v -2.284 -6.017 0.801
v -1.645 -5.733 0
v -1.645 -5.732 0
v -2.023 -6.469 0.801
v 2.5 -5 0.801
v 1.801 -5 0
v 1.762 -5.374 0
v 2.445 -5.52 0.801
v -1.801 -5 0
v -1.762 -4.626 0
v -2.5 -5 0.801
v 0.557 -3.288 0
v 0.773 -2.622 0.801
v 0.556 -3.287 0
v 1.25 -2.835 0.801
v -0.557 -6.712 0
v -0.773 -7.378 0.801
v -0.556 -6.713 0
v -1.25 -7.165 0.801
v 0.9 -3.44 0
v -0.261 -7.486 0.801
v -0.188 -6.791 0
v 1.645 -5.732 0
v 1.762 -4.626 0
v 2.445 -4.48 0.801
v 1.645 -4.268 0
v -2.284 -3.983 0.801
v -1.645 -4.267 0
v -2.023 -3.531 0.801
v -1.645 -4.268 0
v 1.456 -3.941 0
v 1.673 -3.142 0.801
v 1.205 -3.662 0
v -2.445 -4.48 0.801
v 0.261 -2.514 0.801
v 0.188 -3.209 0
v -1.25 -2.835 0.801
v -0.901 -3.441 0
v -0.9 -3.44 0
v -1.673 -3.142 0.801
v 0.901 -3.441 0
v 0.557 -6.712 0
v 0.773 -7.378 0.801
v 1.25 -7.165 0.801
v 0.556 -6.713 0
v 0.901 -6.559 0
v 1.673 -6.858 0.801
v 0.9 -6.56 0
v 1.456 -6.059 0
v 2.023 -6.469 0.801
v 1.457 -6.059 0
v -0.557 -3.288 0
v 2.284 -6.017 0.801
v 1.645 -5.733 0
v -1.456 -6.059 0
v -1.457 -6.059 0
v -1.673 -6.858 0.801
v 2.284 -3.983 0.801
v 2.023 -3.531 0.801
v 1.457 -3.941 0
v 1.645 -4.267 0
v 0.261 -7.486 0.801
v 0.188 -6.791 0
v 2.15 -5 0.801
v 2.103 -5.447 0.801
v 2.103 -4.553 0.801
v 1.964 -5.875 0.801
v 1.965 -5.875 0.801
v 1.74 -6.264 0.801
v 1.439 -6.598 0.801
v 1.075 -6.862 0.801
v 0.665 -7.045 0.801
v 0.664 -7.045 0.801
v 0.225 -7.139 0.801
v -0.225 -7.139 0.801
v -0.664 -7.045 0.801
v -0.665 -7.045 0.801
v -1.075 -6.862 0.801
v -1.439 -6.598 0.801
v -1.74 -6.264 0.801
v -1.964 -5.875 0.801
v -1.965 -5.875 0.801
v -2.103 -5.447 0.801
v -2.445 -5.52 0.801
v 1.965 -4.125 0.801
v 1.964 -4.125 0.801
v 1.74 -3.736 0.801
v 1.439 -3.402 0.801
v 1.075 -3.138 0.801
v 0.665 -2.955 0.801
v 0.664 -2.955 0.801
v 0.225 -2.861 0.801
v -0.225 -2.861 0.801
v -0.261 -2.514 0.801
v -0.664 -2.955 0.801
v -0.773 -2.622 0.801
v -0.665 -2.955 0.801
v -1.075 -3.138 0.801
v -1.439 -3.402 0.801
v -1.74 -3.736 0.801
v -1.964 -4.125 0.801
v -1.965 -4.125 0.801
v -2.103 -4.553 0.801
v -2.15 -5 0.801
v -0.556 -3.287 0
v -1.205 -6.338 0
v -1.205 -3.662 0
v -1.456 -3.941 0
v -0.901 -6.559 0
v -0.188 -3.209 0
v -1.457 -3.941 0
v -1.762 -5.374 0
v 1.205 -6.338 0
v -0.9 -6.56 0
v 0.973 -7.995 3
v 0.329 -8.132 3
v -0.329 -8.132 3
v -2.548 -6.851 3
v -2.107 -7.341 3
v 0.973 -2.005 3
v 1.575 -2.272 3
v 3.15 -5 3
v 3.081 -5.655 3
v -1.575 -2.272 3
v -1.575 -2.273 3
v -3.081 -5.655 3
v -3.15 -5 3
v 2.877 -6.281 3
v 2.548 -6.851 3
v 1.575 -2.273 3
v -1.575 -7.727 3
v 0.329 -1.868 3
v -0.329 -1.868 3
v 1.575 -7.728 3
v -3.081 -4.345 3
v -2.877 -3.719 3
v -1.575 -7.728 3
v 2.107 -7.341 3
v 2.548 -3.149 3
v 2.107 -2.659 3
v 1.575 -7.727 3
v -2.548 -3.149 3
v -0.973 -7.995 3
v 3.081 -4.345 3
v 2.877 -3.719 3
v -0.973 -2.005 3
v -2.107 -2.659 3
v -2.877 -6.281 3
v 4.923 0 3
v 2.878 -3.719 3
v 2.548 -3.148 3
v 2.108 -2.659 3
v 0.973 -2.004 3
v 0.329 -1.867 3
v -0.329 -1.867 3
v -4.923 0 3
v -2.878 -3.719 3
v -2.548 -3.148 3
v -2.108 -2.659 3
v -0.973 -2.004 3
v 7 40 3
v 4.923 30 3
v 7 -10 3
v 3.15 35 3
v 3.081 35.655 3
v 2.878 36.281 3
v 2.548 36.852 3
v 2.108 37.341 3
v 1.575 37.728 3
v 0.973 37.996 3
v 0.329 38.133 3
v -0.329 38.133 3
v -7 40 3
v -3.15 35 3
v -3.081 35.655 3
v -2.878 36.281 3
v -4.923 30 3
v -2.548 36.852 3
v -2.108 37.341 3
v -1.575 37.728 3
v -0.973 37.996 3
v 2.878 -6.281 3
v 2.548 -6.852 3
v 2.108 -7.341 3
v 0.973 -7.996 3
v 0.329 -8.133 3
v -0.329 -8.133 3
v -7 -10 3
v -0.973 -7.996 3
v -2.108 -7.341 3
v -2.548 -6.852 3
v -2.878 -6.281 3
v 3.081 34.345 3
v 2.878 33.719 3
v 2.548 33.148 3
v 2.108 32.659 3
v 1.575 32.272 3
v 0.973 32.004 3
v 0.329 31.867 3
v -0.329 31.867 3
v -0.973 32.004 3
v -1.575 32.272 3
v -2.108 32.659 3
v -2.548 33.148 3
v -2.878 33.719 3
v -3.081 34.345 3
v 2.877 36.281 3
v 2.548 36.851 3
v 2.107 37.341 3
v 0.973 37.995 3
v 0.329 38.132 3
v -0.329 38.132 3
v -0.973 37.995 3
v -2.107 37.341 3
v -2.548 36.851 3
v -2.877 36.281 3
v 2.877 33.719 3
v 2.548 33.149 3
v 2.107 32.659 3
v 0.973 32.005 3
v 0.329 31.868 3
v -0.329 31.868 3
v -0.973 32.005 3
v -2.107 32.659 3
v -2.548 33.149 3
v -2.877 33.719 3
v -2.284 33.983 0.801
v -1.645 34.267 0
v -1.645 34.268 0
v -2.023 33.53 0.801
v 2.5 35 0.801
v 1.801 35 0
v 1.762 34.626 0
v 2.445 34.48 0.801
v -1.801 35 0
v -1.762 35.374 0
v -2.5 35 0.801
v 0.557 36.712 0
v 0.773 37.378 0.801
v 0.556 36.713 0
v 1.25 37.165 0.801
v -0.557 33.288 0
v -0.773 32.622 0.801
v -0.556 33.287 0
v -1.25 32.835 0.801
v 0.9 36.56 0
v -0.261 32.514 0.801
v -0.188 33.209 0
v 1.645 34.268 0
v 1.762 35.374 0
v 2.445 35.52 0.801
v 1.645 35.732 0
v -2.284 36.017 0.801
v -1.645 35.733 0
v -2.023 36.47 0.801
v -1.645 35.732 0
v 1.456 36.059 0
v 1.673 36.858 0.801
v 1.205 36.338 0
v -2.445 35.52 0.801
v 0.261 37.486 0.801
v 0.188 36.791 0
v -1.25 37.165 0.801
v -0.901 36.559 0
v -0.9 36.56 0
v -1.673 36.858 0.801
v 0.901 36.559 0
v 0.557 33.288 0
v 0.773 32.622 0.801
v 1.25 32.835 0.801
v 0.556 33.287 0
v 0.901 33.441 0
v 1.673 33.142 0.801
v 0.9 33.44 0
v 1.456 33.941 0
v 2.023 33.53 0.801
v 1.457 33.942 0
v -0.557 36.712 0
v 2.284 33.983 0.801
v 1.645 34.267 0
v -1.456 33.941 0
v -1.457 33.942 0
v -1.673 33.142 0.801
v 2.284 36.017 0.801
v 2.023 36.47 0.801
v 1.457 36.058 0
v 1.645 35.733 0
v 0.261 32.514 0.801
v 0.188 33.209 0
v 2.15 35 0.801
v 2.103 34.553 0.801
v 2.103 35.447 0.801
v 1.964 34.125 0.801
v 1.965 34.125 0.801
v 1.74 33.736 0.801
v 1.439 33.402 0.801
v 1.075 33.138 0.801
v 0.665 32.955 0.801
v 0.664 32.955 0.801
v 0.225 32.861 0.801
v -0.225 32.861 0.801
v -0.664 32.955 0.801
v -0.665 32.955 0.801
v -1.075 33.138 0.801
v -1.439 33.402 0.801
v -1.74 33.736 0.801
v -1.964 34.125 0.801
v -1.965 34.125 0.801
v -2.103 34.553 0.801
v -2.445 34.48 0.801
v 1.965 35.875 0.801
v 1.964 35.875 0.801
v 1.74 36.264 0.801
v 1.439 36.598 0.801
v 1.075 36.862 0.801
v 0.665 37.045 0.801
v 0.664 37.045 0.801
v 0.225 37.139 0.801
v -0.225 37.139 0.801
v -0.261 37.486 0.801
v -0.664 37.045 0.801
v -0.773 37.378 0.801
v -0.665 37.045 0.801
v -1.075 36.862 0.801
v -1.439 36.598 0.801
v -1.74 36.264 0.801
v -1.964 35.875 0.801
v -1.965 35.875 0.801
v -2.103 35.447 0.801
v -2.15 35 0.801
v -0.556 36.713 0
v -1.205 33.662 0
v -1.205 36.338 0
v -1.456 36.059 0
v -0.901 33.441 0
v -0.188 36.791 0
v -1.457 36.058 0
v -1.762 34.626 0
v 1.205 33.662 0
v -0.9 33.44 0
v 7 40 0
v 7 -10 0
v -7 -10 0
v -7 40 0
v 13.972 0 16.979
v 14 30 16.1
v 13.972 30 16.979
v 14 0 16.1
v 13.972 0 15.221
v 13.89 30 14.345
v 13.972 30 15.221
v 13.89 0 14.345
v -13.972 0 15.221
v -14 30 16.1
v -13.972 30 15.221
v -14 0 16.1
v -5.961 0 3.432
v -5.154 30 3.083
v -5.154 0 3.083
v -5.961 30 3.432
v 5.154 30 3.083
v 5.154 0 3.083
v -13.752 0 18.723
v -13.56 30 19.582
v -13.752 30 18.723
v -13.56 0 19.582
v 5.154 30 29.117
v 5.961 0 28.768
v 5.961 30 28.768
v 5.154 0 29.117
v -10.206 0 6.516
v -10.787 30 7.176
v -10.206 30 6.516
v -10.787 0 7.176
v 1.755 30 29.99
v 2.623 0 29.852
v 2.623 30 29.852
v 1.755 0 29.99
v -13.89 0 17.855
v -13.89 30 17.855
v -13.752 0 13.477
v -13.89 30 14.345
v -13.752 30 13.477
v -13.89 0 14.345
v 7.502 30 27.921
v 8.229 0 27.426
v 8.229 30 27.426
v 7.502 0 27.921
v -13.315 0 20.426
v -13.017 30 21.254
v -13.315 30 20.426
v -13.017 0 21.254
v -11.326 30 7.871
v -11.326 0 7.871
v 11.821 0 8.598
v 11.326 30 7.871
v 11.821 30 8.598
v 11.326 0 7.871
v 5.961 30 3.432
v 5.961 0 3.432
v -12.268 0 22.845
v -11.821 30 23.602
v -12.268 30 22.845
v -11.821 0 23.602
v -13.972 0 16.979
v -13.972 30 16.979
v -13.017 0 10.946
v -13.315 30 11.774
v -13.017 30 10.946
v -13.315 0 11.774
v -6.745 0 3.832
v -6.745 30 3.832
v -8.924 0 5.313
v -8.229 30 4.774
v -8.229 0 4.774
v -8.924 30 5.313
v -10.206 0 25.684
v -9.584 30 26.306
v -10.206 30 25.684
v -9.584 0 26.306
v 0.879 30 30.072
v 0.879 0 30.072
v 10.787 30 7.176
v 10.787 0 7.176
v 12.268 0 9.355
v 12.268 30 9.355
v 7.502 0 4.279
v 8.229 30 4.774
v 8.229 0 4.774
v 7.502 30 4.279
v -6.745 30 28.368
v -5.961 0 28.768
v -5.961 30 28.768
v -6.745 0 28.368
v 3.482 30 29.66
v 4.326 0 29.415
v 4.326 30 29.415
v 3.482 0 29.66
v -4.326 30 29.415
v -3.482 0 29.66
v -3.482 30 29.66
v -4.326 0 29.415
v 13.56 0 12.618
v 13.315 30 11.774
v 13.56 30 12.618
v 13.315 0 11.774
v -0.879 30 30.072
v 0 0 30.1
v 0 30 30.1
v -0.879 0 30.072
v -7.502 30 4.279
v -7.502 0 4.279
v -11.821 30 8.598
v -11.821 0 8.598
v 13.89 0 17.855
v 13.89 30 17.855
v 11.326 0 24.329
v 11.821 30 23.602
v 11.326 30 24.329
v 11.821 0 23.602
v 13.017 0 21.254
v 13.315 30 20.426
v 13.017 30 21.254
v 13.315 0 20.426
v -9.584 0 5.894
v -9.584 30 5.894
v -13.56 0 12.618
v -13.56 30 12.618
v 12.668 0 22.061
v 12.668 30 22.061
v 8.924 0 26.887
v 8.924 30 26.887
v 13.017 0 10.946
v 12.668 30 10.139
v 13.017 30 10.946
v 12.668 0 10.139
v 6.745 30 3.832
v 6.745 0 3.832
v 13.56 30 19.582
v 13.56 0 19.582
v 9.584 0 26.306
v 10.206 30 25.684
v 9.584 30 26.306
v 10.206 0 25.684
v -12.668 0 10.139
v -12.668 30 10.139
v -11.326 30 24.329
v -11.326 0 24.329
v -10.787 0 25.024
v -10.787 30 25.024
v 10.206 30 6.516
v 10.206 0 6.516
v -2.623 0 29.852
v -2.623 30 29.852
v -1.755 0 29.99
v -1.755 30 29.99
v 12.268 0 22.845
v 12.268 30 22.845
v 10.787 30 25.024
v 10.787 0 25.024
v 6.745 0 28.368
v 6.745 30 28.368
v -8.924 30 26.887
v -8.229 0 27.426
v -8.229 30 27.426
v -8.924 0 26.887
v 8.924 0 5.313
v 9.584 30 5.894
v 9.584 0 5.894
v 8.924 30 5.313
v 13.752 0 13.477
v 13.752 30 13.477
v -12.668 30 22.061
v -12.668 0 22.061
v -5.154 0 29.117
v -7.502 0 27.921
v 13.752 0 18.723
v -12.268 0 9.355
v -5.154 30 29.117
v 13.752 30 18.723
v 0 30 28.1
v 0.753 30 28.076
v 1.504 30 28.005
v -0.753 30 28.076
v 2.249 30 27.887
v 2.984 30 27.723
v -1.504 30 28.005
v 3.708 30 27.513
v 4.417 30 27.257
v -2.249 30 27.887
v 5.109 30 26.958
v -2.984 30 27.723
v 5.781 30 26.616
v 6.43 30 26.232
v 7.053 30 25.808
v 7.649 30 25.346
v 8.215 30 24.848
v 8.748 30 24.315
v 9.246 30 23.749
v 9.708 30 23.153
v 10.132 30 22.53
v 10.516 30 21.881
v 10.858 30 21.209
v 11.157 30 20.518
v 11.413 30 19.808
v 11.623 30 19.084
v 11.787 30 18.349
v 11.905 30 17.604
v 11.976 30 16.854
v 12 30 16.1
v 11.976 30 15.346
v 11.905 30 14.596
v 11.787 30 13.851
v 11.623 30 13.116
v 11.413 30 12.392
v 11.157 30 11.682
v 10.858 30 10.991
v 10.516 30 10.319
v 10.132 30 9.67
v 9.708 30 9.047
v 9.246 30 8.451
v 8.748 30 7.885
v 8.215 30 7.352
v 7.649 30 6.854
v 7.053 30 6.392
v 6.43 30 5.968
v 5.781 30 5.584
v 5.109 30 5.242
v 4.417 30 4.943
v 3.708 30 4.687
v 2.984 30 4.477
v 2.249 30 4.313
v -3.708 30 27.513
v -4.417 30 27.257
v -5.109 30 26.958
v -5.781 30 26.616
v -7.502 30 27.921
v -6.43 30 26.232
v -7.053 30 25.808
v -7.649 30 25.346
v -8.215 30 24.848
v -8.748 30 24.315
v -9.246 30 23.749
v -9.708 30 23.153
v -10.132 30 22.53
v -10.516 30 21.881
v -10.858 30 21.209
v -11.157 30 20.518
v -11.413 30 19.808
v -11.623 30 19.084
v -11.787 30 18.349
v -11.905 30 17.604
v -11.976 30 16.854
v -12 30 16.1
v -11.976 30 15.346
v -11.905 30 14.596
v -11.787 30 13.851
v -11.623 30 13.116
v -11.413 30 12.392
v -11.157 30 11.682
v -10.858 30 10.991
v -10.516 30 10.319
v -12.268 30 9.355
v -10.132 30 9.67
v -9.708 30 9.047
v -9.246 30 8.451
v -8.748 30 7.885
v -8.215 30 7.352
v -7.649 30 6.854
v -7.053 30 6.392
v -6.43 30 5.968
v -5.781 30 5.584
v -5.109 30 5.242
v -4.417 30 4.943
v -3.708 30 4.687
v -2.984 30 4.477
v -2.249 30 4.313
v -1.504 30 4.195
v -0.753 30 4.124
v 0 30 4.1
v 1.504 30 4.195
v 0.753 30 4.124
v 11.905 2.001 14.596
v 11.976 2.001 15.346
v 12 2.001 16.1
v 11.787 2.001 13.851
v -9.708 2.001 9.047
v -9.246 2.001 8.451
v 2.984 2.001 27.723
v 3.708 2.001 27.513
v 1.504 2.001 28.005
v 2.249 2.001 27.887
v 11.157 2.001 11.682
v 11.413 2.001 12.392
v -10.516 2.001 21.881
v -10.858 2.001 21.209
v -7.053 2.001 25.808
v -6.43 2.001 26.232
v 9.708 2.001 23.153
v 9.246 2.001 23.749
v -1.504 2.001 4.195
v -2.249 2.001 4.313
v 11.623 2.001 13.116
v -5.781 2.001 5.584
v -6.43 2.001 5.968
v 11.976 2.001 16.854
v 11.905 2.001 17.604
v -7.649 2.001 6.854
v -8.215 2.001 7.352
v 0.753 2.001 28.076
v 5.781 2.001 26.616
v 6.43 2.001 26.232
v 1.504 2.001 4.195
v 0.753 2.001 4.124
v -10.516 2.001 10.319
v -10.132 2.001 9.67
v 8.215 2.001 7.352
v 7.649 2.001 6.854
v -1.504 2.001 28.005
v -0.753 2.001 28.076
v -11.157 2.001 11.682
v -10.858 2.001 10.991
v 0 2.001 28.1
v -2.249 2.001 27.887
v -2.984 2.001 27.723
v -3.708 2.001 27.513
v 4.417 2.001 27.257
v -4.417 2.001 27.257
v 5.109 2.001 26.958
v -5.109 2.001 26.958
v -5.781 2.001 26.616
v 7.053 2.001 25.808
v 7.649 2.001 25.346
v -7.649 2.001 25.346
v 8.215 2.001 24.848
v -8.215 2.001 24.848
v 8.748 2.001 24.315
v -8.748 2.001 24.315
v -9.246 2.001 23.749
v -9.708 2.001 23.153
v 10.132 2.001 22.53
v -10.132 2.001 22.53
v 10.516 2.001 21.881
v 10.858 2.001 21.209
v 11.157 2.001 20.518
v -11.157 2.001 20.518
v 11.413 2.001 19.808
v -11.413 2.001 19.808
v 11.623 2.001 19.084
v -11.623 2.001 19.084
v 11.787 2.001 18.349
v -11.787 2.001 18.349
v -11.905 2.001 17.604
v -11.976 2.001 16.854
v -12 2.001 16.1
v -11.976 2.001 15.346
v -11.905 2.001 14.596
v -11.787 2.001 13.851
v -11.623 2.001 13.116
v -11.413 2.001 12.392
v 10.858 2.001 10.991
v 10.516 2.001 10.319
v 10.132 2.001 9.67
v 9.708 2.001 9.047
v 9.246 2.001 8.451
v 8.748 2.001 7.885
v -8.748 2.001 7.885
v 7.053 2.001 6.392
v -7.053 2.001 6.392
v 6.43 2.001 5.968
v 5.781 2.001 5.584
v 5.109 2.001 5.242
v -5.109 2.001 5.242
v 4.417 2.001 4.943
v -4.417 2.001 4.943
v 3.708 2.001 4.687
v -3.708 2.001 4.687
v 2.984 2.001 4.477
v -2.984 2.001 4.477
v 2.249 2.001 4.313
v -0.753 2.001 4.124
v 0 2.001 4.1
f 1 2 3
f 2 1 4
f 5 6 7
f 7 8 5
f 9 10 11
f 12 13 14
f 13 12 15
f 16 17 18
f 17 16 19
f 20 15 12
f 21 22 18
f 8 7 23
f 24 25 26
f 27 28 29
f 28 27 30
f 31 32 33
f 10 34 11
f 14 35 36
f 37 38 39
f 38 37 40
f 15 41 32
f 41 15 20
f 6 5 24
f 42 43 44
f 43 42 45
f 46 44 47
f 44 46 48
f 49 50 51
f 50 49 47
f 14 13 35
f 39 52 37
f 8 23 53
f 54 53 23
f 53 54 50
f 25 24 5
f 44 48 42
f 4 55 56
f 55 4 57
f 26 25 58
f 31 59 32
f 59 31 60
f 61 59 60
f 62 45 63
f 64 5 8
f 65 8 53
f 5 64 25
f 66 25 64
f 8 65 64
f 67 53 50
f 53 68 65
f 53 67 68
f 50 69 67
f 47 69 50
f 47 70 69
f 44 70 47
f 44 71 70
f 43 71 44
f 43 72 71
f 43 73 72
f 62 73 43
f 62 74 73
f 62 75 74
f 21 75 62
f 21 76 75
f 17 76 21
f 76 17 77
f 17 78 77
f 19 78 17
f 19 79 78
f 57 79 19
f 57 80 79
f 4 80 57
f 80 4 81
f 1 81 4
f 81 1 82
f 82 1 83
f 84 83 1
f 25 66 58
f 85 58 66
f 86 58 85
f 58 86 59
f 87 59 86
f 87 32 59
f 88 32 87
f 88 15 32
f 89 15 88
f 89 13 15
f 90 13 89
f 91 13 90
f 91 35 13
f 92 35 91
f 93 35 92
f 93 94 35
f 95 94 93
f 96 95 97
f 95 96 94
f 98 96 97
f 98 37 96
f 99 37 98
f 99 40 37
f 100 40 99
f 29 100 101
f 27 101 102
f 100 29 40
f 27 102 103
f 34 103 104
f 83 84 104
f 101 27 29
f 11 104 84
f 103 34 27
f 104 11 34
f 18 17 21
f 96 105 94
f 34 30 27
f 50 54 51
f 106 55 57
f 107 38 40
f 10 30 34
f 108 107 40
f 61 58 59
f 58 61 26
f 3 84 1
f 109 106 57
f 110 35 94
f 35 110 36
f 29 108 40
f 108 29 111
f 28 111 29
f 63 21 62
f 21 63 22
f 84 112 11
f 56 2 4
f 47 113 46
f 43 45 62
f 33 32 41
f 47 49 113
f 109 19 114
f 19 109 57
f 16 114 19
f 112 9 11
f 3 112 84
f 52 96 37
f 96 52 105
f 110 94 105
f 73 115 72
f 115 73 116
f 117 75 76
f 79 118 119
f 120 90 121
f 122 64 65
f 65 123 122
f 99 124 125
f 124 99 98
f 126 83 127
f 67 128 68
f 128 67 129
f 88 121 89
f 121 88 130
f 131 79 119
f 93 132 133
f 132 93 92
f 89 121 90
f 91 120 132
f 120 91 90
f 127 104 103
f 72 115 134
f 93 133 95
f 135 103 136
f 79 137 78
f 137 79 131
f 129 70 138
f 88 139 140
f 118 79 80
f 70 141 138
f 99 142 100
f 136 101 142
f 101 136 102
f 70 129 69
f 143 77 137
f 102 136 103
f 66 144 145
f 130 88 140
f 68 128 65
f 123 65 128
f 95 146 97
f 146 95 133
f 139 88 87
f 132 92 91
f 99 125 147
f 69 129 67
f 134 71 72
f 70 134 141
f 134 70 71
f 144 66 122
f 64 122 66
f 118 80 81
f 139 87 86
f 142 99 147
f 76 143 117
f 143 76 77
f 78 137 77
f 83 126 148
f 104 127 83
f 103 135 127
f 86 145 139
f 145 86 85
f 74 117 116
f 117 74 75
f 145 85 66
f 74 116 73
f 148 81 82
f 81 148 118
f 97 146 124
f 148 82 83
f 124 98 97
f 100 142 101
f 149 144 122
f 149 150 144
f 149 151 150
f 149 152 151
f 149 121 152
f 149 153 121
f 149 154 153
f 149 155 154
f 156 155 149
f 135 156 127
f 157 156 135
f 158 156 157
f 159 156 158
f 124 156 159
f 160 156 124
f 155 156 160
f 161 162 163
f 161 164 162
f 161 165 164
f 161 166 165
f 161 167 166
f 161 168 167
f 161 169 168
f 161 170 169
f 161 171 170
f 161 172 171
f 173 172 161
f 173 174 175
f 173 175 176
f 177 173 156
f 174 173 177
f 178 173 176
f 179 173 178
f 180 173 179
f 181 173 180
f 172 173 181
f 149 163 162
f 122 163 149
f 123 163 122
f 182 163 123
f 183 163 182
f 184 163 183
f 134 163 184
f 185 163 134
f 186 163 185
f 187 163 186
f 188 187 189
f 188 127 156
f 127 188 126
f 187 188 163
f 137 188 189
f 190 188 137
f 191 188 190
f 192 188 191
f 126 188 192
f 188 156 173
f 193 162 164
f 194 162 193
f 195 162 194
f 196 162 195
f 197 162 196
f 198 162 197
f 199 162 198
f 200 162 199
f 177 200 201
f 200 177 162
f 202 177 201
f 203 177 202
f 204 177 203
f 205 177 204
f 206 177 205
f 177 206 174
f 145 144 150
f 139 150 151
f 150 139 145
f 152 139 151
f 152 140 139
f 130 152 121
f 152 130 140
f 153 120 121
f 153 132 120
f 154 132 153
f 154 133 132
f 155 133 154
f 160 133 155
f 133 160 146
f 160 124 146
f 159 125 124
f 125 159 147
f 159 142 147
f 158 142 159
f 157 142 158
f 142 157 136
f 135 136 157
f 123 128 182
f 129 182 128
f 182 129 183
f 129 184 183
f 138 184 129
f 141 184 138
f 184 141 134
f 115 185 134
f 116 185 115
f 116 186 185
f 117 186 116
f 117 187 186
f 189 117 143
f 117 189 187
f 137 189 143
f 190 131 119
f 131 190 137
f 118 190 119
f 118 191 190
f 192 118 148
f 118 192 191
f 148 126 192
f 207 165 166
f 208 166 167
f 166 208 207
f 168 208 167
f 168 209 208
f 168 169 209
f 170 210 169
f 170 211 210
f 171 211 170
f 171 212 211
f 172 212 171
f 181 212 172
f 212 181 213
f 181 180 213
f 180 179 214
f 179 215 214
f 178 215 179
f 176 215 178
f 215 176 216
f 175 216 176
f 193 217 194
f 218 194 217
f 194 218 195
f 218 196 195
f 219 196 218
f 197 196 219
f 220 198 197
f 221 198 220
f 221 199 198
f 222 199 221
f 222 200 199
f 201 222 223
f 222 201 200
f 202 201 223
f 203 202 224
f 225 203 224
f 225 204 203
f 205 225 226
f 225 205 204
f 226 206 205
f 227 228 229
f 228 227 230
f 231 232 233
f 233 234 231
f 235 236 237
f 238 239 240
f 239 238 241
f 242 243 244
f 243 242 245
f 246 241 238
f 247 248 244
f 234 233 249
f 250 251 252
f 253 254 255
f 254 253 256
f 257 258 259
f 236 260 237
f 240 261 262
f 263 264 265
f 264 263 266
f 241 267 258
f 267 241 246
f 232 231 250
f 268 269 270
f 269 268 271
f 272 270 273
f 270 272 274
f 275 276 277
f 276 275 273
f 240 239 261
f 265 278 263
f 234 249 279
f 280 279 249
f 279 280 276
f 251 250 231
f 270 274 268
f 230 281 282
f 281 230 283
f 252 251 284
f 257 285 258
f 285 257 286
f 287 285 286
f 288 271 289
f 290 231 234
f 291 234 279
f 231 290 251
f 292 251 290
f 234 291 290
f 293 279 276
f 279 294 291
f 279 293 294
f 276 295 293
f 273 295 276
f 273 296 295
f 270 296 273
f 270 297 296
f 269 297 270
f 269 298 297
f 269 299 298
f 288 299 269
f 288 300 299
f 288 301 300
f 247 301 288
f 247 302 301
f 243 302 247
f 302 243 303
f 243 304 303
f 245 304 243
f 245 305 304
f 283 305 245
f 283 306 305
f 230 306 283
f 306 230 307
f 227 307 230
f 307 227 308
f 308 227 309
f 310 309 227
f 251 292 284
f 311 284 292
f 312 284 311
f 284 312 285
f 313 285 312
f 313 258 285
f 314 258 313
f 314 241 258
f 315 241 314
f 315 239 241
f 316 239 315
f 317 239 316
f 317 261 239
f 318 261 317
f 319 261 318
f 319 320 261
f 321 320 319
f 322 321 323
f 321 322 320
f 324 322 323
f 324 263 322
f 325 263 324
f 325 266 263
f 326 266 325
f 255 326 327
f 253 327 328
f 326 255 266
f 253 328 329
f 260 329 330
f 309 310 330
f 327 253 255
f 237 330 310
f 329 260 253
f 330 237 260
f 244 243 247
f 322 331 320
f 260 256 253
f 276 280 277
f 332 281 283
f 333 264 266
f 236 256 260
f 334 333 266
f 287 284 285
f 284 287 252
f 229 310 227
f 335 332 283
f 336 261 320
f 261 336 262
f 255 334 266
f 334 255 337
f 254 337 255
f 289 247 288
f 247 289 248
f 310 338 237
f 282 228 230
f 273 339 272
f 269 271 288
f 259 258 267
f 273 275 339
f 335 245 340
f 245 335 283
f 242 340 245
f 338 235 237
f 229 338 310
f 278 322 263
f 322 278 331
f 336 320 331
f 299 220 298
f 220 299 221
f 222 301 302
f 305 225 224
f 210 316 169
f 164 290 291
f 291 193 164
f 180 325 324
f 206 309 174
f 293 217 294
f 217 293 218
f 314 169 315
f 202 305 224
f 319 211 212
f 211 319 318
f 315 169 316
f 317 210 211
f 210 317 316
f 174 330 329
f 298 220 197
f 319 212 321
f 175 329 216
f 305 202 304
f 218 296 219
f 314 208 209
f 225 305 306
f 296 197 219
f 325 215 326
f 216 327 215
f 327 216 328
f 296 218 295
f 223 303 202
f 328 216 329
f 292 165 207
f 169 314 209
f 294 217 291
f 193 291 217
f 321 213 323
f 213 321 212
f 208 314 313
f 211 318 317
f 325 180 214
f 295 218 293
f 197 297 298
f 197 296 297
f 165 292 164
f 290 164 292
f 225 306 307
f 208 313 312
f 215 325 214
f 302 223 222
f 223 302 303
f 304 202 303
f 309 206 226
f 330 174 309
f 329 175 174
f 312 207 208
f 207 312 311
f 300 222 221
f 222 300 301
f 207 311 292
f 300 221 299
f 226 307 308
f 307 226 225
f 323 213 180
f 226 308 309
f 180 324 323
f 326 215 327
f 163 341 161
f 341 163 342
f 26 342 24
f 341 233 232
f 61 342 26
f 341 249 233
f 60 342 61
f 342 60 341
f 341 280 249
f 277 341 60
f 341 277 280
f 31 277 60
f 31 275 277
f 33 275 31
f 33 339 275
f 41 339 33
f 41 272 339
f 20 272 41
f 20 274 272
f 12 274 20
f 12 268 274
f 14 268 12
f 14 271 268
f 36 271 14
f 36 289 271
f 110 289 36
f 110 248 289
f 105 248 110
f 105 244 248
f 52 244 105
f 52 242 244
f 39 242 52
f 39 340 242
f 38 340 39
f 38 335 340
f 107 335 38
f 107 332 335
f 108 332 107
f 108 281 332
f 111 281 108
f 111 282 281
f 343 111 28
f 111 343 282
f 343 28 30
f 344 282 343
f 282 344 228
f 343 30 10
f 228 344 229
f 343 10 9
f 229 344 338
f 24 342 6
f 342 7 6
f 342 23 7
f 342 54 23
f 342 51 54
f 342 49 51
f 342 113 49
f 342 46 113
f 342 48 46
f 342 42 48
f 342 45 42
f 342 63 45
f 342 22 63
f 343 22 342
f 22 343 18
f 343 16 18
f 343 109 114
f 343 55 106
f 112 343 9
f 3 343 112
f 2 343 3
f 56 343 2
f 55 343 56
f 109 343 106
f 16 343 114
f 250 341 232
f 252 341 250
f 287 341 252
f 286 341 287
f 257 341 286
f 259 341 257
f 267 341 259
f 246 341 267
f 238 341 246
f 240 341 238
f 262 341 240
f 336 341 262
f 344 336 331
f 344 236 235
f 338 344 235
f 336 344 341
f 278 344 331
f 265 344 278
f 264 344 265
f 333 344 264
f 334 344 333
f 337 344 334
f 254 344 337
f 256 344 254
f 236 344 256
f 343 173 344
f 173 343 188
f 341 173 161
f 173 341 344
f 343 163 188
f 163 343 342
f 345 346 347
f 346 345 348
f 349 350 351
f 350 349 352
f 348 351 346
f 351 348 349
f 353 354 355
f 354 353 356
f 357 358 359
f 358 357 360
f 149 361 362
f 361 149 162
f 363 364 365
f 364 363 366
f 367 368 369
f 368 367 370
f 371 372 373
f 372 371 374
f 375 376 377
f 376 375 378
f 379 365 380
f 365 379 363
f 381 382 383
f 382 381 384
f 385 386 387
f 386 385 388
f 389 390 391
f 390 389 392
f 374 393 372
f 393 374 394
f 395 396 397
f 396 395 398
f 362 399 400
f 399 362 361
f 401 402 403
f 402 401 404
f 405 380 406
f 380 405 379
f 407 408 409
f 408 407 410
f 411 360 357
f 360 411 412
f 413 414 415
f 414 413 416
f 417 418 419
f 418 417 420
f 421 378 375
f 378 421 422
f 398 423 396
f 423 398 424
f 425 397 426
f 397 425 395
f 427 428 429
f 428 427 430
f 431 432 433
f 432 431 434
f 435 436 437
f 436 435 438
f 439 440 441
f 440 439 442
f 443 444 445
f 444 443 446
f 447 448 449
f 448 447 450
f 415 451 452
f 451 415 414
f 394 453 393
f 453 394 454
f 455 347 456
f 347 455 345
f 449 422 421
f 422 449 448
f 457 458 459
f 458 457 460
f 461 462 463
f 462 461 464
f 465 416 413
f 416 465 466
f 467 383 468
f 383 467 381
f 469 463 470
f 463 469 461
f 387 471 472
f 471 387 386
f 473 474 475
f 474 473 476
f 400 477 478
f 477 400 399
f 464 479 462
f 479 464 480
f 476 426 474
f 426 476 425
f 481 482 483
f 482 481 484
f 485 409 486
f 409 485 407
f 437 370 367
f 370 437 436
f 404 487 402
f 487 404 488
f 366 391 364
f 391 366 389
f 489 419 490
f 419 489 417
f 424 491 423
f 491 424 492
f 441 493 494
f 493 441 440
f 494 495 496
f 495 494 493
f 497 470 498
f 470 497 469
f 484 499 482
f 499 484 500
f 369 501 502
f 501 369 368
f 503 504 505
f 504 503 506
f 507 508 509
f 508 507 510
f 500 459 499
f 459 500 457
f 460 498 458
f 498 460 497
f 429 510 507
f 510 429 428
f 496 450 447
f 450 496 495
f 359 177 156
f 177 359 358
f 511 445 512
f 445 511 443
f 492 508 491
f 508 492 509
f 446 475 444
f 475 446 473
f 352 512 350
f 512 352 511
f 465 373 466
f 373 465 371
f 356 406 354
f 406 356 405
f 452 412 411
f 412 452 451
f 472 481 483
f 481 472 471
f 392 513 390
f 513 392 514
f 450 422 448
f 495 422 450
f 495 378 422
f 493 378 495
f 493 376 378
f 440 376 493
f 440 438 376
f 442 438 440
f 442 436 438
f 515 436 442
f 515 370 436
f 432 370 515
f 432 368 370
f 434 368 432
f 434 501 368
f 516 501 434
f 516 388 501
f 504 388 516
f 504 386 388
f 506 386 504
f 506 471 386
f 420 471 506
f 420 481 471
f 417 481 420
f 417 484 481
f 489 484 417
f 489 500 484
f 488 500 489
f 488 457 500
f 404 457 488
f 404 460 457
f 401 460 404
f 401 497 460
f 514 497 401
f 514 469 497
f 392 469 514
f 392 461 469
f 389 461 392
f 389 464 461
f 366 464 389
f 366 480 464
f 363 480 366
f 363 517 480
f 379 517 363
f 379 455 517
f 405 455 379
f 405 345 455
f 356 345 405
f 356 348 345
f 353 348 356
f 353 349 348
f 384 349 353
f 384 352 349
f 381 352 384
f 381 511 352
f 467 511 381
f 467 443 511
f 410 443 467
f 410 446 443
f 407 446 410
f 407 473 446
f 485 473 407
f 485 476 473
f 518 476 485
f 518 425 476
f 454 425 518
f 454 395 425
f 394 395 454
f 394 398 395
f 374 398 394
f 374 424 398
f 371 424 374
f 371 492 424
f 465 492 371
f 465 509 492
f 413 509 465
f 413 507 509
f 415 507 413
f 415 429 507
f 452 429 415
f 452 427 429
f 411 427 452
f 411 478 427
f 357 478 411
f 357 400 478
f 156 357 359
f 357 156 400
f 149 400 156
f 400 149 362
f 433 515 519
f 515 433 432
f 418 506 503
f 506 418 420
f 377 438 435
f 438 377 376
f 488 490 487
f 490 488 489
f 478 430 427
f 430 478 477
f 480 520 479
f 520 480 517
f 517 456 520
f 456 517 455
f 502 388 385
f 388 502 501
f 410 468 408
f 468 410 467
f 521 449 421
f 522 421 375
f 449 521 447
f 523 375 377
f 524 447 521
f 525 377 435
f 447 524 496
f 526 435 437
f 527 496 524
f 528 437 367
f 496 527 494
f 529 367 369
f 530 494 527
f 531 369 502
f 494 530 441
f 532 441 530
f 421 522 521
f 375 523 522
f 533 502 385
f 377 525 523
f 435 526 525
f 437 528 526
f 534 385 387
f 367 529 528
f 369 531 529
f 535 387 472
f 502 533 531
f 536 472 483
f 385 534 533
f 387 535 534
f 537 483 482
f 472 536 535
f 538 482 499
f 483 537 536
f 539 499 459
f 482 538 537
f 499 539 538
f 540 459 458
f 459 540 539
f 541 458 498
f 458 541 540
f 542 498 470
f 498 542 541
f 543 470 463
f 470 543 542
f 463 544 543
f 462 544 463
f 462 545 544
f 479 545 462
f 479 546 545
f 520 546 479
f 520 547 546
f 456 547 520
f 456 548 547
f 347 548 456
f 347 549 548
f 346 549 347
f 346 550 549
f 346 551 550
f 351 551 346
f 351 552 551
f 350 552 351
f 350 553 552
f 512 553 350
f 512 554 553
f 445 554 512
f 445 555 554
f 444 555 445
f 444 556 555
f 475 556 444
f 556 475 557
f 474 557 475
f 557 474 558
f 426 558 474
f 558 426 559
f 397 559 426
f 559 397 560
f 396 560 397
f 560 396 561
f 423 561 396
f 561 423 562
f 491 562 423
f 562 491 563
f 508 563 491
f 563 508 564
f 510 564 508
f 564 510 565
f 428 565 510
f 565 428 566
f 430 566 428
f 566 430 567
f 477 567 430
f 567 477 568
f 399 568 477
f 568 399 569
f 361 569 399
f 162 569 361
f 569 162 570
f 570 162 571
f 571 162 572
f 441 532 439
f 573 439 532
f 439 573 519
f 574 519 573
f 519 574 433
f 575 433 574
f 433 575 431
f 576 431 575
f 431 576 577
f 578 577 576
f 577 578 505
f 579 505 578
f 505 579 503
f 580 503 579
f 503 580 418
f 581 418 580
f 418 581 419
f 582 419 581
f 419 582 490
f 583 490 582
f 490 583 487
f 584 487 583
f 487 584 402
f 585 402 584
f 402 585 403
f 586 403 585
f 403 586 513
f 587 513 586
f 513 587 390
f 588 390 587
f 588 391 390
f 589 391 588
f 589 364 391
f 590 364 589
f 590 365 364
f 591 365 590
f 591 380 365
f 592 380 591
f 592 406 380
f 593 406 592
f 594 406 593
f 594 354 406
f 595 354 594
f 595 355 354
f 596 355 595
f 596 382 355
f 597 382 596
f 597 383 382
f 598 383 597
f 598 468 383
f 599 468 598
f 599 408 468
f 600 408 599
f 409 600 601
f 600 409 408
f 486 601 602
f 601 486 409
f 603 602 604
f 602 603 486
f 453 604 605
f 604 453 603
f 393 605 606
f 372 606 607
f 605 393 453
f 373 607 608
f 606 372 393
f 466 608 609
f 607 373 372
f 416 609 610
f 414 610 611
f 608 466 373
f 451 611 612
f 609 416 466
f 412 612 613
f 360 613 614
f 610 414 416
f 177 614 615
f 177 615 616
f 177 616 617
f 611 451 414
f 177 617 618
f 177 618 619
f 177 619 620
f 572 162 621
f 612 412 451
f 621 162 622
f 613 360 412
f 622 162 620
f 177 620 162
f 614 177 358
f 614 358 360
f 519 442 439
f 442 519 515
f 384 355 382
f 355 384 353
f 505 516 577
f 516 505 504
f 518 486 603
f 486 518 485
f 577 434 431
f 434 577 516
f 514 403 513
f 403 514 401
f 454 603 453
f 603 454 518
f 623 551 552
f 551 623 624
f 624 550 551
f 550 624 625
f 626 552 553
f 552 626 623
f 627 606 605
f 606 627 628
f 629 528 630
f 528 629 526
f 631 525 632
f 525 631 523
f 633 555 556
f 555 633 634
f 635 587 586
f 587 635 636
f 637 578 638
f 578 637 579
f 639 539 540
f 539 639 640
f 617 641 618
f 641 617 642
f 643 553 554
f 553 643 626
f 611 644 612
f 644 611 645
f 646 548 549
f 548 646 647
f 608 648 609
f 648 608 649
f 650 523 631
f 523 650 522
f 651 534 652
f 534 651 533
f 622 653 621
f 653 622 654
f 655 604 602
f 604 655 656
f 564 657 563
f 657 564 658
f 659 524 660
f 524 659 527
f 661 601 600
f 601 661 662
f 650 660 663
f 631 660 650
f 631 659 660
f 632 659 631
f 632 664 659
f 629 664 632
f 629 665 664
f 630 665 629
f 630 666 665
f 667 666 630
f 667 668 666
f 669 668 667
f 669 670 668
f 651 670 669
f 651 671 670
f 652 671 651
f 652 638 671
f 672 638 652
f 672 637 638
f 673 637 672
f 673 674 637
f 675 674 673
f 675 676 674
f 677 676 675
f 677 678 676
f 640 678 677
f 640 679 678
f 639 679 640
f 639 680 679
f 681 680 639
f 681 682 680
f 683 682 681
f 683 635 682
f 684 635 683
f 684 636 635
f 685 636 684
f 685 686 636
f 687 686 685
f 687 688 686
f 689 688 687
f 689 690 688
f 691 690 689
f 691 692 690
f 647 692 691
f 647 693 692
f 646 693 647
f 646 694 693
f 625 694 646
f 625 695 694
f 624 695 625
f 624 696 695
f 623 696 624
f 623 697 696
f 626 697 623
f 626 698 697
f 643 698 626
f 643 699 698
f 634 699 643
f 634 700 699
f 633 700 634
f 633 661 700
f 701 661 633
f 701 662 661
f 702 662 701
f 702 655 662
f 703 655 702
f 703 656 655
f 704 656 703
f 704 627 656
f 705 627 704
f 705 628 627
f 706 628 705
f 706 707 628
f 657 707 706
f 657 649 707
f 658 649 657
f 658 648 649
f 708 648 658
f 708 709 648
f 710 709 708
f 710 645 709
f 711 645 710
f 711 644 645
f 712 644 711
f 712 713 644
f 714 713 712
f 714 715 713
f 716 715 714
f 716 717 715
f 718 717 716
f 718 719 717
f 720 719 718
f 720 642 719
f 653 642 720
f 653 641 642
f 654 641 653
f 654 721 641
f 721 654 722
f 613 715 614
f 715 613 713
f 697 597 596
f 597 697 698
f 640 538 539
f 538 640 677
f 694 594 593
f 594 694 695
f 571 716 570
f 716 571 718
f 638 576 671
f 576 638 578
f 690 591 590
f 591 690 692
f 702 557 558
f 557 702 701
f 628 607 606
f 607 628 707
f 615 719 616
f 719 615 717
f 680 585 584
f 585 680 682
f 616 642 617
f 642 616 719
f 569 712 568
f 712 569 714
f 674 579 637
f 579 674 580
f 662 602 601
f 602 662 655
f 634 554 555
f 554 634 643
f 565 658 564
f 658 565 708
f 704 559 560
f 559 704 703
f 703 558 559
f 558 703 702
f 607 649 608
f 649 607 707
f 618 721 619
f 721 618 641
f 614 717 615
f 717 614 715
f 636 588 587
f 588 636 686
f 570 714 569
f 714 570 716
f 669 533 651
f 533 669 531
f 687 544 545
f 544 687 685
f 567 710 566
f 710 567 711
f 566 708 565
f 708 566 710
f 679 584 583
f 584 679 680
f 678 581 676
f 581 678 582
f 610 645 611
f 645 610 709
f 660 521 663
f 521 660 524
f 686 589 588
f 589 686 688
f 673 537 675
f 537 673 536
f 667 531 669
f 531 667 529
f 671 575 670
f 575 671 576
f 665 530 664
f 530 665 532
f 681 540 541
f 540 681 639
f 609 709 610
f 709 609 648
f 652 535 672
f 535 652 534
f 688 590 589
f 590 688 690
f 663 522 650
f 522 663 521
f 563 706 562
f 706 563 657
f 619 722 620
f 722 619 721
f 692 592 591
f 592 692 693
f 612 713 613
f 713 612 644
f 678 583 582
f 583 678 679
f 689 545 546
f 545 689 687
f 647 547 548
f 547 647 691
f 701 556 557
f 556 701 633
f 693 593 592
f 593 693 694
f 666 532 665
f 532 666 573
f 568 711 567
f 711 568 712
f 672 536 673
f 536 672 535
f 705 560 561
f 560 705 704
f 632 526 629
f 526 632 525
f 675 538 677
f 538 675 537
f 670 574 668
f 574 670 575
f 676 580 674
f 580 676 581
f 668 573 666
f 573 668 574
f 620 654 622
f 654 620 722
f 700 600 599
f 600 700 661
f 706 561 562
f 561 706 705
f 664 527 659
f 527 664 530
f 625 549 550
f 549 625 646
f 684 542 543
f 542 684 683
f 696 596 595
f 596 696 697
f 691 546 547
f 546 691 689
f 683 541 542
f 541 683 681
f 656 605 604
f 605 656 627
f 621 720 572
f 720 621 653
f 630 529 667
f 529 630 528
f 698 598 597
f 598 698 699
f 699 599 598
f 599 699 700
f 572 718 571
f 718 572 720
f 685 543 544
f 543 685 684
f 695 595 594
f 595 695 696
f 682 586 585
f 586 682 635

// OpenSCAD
//
// ktRack29
//
//


gap1 = 0.001;
gap2 = 0.002;

th = 2;



A();


module A()
difference()
{
    union()
    {
        translate([-14/2, -10, 0]) cube([14, 50, 3]);
        translate([0, 0, (24+th*2)/2+2.1]) rotate([-90, 0, 0,]) cylinder(30, (24+th*2)/2, (24+th*2)/2, $fn=100);
    }

    translate([0, th+gap1, (24+th*2)/2+2.1]) rotate([-90, 0, 0,]) cylinder(30-th, (24)/2, (24)/2, $fn=100);
    
    translate([0, -5, 3]) rotate([180, 0, 0]) rear_screw_hole();
    translate([0, 35, 3]) rotate([180, 0, 0]) rear_screw_hole();
    
}




module rear_screw_hole()
{
    translate([0, 0, 3]) cylinder(5, 1.8, 1.8, $fn=30);
    translate([0, 0, 2.2-gap1]) cylinder(0.8+gap2, 1.8+0.7, 1.8, $fn=30);
    translate([0, 0, -gap1]) cylinder(2.2+gap1, 2.75+0.4, 2.75-0.6, $fn=30);
    translate([0, 0, -10]) cylinder(10, 2.75+0.4, 2.75+0.4, $fn=30);
}
